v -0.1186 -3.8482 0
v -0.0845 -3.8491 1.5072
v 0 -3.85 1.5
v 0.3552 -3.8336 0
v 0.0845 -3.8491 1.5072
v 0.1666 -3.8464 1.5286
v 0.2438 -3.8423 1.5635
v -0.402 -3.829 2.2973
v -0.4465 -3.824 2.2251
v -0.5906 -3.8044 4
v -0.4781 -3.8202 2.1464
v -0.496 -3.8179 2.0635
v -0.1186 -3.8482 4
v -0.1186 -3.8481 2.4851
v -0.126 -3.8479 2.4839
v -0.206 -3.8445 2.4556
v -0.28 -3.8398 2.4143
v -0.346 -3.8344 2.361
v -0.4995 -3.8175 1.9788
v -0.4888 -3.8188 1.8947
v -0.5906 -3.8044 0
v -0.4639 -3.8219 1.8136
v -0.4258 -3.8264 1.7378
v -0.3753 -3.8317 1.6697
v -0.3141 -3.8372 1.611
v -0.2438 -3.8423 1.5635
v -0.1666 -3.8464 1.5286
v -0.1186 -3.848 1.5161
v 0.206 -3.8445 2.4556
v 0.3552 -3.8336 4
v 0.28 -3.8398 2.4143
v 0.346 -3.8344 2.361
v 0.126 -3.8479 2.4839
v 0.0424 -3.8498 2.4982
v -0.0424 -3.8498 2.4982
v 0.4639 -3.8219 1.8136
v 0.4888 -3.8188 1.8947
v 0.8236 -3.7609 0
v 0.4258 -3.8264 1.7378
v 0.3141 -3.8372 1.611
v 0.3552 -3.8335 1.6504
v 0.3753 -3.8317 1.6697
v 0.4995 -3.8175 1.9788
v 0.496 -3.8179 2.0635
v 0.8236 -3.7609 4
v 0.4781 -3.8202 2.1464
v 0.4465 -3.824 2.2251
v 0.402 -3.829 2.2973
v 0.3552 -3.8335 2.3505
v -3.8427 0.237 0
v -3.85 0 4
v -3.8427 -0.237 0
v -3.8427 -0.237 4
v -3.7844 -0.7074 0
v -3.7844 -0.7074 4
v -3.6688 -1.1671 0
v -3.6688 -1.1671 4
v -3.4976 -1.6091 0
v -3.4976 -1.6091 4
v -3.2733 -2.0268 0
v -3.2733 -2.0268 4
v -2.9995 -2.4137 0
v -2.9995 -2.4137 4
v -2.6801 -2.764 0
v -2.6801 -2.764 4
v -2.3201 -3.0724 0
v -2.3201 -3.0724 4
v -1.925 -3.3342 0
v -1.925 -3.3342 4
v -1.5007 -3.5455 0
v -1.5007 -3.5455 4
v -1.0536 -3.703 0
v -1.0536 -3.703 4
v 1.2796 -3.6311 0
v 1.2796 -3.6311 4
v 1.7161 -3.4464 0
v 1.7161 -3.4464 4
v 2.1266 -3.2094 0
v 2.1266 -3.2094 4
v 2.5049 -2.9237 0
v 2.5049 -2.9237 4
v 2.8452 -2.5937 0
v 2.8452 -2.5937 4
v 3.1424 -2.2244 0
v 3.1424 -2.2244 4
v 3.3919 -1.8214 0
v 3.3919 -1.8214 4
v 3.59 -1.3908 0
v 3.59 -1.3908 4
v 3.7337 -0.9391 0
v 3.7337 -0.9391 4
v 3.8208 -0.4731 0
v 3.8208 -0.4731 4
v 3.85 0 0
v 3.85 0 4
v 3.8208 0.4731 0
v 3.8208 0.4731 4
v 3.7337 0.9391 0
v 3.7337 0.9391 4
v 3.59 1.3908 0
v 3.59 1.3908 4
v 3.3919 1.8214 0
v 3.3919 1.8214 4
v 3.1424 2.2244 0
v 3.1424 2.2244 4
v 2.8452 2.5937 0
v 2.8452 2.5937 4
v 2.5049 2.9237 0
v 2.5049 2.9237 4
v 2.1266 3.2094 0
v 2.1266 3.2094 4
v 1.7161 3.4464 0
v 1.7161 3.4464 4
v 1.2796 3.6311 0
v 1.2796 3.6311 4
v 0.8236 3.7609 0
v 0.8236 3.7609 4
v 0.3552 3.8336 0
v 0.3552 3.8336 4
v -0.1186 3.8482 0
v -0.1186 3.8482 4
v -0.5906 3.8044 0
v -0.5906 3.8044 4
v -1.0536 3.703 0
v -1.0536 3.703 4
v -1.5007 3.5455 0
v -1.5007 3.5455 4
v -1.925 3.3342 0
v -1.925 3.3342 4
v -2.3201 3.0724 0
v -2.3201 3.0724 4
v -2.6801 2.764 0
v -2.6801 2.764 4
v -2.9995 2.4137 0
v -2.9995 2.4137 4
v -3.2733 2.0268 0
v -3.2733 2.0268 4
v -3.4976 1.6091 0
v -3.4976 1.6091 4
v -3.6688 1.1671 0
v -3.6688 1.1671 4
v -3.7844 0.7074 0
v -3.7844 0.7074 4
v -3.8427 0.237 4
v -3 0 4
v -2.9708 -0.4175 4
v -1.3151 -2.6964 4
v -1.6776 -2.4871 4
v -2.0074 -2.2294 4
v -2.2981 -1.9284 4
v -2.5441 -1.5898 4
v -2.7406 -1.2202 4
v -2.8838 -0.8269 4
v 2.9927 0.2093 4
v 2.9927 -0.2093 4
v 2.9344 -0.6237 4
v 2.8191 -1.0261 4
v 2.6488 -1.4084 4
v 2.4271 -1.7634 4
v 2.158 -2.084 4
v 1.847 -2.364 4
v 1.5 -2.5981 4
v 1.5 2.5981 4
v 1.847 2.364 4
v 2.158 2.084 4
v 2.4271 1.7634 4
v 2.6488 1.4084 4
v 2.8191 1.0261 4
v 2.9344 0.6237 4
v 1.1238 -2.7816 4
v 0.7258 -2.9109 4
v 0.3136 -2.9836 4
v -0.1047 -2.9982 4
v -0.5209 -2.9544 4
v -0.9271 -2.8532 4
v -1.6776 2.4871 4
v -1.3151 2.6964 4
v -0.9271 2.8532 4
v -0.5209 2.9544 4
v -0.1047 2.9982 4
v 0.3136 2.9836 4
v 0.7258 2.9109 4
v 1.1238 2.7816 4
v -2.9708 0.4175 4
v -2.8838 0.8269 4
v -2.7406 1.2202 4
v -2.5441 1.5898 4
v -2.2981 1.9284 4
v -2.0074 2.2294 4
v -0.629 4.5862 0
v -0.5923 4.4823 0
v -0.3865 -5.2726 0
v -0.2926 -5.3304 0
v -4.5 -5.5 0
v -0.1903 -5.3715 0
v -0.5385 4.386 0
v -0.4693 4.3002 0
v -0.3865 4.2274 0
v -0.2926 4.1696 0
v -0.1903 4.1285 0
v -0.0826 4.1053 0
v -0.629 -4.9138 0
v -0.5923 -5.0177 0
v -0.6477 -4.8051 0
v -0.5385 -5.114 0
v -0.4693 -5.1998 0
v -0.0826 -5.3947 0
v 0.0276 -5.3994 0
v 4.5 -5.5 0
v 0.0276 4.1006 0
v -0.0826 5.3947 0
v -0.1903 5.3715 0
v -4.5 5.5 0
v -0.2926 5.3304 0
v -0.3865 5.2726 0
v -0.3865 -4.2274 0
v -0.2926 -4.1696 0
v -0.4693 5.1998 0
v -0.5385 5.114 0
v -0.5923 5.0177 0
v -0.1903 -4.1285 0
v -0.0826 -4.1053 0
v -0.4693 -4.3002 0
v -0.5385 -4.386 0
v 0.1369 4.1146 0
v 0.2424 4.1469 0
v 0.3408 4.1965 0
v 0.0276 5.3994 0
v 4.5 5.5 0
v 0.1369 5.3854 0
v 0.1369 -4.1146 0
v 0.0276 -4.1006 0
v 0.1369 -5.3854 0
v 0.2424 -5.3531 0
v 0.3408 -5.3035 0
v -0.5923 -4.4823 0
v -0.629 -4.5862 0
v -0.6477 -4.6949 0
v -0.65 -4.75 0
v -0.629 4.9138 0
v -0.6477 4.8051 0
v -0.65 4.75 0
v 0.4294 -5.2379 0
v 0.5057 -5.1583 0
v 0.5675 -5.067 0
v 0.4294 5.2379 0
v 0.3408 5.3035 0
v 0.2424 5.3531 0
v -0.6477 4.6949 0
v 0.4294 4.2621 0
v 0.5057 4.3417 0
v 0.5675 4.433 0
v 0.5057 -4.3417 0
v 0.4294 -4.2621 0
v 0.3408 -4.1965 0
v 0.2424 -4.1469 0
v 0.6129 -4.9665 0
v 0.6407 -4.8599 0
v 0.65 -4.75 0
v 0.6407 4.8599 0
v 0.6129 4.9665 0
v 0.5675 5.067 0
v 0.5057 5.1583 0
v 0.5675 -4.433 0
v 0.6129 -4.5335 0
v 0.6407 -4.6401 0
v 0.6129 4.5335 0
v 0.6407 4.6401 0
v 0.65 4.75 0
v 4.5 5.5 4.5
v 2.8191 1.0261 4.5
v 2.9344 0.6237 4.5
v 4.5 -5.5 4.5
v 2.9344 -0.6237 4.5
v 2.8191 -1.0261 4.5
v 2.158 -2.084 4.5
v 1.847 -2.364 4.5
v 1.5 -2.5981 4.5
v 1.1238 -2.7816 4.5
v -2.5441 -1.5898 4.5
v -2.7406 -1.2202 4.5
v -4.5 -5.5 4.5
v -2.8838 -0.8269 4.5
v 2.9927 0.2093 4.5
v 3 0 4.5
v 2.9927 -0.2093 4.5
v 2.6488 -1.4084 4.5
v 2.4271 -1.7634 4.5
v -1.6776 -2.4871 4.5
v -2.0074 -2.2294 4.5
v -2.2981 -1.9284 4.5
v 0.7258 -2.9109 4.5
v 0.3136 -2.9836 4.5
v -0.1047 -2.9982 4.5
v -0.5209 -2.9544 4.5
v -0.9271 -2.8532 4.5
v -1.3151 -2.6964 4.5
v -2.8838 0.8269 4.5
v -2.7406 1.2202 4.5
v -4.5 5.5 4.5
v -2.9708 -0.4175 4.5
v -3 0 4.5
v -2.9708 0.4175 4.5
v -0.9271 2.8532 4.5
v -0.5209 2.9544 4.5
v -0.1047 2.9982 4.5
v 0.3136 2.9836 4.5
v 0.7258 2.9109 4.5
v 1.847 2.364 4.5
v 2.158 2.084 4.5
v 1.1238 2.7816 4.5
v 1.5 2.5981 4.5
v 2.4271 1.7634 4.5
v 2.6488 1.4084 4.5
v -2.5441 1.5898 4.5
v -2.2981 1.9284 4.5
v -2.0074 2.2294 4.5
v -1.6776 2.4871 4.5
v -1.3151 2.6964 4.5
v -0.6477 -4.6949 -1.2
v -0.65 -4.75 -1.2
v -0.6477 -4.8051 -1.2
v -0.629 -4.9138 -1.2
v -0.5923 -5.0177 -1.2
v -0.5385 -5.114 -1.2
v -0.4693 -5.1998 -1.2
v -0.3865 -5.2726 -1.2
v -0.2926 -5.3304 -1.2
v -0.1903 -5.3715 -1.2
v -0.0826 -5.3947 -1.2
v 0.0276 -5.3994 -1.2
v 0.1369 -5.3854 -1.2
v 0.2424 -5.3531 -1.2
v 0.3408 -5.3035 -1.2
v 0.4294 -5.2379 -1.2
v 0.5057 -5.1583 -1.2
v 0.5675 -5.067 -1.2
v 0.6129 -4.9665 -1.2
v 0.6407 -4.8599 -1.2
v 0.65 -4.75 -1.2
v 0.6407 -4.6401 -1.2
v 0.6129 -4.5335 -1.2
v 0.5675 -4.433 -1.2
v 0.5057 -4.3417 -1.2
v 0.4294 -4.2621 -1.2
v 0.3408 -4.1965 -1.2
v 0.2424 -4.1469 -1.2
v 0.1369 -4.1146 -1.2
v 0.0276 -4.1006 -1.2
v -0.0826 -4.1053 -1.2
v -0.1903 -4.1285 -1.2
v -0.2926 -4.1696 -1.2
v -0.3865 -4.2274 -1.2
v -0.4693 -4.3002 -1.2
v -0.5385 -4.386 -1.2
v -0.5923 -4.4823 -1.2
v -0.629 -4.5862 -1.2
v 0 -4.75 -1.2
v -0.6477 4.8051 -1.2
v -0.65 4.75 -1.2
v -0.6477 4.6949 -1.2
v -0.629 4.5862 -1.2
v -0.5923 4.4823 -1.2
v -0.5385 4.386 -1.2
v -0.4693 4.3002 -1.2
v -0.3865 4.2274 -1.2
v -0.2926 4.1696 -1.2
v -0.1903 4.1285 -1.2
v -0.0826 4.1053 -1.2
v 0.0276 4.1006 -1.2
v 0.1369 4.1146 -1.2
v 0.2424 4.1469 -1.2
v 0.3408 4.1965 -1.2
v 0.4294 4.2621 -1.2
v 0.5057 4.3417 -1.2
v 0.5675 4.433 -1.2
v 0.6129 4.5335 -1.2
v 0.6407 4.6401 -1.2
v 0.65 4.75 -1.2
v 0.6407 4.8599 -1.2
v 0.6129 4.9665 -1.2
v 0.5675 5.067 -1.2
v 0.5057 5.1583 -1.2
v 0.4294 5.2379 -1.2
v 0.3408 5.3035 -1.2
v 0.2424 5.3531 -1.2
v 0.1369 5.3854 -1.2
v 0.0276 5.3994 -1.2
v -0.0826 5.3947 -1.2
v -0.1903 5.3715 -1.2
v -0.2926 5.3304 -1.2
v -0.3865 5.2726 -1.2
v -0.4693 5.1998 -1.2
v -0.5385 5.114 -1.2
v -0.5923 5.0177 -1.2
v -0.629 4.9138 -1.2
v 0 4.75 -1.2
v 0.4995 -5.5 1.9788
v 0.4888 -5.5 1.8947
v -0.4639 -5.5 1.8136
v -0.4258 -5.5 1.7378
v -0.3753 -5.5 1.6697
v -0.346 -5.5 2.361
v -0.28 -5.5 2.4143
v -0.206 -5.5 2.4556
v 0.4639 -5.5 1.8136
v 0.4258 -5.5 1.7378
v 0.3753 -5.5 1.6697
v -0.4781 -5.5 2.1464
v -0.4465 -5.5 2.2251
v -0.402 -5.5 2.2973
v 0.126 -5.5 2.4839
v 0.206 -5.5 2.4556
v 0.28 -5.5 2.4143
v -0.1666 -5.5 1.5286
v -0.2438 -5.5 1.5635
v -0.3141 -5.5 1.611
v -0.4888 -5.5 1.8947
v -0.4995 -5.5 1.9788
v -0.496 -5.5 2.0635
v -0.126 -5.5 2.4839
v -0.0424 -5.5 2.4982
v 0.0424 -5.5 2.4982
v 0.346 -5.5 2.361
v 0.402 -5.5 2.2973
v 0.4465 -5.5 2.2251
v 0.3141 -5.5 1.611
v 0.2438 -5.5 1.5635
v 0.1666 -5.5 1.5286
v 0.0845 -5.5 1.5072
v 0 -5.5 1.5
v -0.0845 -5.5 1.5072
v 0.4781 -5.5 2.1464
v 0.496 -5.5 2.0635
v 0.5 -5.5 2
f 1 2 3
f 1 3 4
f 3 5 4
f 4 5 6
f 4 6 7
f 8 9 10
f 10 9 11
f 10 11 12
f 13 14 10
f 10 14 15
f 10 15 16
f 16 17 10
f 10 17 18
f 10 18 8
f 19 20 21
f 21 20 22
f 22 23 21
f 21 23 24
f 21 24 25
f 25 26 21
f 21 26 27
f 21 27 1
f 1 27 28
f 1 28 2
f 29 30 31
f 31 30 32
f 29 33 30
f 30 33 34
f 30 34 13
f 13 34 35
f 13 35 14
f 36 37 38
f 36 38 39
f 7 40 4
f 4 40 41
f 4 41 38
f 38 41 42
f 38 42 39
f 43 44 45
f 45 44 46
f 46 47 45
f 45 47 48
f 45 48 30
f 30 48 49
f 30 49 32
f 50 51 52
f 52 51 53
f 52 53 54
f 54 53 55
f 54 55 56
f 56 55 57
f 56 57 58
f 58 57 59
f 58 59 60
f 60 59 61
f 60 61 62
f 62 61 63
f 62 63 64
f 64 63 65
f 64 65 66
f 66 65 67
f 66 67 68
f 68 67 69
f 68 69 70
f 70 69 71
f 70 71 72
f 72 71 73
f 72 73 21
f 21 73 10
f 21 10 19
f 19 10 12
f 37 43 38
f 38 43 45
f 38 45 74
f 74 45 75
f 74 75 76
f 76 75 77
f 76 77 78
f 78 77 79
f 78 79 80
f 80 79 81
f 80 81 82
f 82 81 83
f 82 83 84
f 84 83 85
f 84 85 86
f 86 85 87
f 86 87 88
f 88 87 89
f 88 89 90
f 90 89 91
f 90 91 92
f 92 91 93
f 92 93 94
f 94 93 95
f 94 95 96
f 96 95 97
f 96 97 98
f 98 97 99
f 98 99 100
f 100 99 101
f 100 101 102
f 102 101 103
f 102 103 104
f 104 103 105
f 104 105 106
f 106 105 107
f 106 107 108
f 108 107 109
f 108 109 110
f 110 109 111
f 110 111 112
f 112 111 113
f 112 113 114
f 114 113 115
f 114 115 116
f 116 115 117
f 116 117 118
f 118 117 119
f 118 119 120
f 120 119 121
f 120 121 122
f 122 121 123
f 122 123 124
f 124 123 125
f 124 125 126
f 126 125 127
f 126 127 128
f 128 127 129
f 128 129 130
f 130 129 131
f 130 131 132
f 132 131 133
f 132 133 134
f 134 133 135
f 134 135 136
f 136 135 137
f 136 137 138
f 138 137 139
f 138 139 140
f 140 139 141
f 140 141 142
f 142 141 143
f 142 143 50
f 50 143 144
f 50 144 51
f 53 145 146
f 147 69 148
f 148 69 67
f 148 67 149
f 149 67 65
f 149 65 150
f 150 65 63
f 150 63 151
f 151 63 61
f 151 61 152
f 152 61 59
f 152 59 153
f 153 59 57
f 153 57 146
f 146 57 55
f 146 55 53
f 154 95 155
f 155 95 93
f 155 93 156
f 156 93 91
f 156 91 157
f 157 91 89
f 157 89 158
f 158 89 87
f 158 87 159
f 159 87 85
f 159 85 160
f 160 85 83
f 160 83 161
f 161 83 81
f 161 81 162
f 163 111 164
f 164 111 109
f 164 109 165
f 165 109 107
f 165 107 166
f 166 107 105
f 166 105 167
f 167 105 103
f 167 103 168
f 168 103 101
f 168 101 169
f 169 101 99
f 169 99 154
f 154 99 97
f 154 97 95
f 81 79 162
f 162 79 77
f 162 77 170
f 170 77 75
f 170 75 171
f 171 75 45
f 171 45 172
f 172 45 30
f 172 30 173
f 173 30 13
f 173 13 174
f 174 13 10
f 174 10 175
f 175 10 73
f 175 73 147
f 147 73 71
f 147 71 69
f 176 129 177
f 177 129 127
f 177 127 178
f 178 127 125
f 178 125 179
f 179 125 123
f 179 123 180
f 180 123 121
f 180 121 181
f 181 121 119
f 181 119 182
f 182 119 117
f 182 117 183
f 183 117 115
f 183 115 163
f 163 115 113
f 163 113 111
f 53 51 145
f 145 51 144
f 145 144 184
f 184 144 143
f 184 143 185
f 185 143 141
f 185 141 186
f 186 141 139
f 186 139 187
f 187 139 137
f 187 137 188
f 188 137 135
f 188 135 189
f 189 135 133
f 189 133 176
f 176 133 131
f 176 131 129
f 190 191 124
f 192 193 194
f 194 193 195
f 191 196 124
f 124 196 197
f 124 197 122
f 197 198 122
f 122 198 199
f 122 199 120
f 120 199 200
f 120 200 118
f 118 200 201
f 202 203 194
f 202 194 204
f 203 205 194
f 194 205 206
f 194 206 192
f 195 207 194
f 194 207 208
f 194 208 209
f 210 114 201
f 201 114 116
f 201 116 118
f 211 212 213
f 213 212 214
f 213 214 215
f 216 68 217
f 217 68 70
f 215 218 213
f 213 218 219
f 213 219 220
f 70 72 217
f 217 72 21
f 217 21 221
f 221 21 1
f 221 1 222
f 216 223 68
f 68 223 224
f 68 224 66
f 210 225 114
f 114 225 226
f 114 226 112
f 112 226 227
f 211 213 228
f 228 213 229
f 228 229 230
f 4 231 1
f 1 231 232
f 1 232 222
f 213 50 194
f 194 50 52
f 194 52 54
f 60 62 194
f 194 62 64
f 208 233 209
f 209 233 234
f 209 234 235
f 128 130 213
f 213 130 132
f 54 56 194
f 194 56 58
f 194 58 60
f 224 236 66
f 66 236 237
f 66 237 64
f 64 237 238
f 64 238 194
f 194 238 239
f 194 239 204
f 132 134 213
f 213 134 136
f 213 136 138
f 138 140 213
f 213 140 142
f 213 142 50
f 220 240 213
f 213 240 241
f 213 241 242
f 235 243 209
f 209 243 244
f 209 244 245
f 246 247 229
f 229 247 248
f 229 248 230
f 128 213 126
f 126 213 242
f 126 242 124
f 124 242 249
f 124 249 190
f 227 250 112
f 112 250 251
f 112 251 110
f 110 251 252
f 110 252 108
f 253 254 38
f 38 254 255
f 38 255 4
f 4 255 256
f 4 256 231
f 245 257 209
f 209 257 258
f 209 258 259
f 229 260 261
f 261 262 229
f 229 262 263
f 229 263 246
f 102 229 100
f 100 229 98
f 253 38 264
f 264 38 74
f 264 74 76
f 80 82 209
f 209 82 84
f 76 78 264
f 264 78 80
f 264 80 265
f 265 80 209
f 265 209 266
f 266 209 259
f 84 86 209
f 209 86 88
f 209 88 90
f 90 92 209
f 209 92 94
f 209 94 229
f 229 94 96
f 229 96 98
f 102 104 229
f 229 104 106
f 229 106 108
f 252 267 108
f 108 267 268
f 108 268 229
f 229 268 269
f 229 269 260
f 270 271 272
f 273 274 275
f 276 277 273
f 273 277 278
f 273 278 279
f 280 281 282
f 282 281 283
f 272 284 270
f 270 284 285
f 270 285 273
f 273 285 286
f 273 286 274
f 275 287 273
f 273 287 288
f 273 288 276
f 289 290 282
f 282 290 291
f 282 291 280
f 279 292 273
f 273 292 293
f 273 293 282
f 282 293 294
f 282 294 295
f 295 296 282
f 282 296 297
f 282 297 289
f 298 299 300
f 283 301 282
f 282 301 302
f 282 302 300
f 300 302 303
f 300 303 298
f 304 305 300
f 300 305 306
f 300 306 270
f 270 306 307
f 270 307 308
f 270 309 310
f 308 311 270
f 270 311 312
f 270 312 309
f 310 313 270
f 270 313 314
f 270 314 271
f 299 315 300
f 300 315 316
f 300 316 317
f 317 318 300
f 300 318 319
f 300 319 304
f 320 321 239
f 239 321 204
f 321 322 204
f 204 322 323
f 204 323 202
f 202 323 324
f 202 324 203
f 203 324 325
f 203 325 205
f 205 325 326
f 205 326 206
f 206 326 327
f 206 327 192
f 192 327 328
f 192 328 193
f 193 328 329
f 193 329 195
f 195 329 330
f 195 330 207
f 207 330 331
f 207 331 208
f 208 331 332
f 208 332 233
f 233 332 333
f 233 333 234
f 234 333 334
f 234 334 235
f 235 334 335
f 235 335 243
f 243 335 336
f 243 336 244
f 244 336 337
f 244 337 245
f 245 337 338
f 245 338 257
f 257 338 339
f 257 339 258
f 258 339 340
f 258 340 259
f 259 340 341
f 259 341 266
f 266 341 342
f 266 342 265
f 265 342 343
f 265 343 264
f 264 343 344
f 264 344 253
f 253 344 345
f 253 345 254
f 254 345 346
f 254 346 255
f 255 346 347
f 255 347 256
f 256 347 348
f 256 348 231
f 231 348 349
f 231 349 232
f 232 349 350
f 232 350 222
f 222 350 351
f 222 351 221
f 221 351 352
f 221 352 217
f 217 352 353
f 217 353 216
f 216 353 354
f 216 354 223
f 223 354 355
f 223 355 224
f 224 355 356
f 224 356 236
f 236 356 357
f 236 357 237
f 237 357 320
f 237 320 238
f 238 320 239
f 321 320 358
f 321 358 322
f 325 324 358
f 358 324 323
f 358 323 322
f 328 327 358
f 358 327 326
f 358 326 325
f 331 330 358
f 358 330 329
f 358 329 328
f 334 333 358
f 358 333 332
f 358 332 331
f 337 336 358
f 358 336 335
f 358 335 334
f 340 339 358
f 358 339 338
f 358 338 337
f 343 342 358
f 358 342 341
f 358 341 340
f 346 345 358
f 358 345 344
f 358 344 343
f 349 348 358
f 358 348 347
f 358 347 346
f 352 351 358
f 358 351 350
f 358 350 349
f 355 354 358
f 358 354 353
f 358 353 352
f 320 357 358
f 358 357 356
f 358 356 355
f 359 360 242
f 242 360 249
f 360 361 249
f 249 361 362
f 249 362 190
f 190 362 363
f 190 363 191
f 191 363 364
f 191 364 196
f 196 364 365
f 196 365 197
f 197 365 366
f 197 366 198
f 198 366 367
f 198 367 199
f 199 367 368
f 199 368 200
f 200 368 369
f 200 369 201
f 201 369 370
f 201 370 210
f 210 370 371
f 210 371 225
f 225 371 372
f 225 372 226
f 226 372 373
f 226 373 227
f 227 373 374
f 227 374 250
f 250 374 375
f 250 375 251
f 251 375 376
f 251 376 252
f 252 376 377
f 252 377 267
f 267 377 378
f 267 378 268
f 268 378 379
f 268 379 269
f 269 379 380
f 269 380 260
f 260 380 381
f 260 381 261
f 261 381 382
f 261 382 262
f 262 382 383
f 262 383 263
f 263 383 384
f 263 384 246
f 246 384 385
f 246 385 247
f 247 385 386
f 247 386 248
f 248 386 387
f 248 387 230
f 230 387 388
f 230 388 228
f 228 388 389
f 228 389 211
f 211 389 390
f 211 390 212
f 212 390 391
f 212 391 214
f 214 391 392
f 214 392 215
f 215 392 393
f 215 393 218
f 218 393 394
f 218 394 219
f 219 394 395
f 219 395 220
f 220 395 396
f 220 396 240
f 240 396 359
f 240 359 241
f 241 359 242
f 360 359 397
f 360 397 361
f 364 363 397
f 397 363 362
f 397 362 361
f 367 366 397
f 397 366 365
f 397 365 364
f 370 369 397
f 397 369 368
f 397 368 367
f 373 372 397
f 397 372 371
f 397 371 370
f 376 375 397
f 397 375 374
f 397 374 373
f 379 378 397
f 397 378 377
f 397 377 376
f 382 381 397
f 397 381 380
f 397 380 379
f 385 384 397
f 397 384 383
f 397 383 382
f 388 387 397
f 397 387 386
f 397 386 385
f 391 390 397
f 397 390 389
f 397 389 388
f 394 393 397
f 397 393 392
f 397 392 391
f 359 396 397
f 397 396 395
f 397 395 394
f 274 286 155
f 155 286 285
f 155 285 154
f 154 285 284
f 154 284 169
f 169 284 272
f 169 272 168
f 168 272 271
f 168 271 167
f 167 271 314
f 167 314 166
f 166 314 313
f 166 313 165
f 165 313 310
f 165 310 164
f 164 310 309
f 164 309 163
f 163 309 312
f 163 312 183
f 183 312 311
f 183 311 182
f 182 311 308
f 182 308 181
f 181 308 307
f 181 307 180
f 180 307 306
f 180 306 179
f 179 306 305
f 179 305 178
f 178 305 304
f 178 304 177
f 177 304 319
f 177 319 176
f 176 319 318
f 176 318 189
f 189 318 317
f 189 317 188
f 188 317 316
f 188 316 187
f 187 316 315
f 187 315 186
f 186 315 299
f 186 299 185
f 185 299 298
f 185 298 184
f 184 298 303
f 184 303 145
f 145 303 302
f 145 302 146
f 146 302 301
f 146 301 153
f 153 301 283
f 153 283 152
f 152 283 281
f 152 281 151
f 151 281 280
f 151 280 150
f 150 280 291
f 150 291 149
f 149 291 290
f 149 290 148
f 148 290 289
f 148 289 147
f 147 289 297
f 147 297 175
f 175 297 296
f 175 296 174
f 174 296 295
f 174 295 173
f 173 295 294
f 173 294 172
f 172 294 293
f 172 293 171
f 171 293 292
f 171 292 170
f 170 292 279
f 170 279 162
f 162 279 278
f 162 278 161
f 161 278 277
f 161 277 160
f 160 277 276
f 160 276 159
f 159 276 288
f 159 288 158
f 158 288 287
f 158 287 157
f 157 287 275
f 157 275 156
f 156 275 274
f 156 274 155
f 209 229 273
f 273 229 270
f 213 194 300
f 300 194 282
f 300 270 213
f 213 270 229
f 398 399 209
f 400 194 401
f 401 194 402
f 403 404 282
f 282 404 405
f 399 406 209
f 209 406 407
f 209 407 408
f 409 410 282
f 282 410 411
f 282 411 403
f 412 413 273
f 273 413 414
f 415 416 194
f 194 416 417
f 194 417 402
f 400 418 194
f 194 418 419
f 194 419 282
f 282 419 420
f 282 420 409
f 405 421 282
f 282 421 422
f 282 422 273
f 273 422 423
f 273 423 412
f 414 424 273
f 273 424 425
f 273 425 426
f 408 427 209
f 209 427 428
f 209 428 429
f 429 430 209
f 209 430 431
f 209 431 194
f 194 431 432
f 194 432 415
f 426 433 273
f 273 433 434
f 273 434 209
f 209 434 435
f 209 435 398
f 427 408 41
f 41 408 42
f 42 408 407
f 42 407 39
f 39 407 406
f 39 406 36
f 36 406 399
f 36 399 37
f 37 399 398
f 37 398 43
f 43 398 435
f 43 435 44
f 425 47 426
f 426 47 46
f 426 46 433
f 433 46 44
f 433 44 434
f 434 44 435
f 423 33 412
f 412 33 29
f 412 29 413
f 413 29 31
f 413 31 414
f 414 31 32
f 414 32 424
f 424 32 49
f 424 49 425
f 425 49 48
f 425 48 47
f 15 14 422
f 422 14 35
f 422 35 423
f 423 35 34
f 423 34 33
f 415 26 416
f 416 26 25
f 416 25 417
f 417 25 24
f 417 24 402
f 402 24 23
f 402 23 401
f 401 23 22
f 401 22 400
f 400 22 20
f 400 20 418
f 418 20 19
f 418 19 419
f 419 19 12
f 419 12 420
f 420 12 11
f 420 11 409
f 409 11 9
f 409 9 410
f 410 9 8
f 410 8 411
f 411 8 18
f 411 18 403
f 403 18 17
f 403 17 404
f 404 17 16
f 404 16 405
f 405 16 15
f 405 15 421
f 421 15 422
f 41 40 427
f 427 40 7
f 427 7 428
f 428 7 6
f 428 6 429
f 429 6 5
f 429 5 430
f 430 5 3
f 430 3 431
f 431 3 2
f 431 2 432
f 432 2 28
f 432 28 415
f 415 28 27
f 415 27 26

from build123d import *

# Parameters (mm, degrees)
ESBO_O6_R                  = 5.25
ESBO_O6_R_2                = 4.1
RESSALTO_EXTRUS_O3_DEPTH   = 4
ESBO_O7_R                  = 5.25
RESSALTO_EXTRUS_O4_DEPTH   = 0.5
ESBO_O9_R                  = 0.65
RESSALTO_EXTRUS_O5_DEPTH   = 1.2
ESBO_O12_R                 = 3
CORTE_EXTRUS_O5_DEPTH      = 10
RESSALTO_EXTRUS_O6_START   = 4
ESBO_O13_R                 = 4.1
ESBO_O13_R_2               = 3.85
RESSALTO_EXTRUS_O6_DEPTH   = 4
ESBO_O16_W                 = 2.665336127
ESBO_O16_H                 = 7.90902753
ESBO_O16_W_2               = 2.097265449
ESBO_O16_H_2               = 7.395164159
CORTE_EXTRUS_O7_DEPTH      = 10
ESBO_O15_W                 = 9
ESBO_O15_H                 = 11
ESBO_O15_R                 = 3.85
RESSALTO_EXTRUS_O7_DEPTH   = 4.5
CORTE_EXTRUS_O6_REACH      = 18.756
CORTE_EXTRUS_O6_END_RADIUS = 3.85
ESBO_O14_R                 = 0.5


with BuildPart() as part:
    # Esboço6 → Ressalto-extrusão3 (new body)
    with BuildSketch(Plane.XY):
        Circle(ESBO_O6_R)
        Circle(ESBO_O6_R_2, mode=Mode.SUBTRACT)
    extrude(amount=RESSALTO_EXTRUS_O3_DEPTH)

    # Esboço7 → Ressalto-extrusão4 (add)
    with BuildSketch(Plane.XY.offset(4)):
        Circle(ESBO_O7_R)
    extrude(amount=RESSALTO_EXTRUS_O4_DEPTH)

    # Esboço9 → Ressalto-extrusão5 (add)
    with BuildSketch(Plane(origin=(0, 0, 0), x_dir=(-1, 0, 0), z_dir=(0, 0, -1))):
        with Locations(Location((0, 4.75, 0), (0, 0, 132.158106499))):
            Circle(ESBO_O9_R)
        with Locations(Location((0, -4.75, 0), (0, 0, 227.841893501))):
            Circle(ESBO_O9_R)
    extrude(amount=RESSALTO_EXTRUS_O5_DEPTH)

    # Esboço12 → Corte-extrusão5 (cut)
    with BuildSketch(Plane(origin=(0, 0, 4), x_dir=(-1, 0, 0), z_dir=(0, 0, -1))):
        Circle(ESBO_O12_R)
    extrude(amount=-CORTE_EXTRUS_O5_DEPTH, mode=Mode.SUBTRACT)

    # Esboço13 → Ressalto-extrusão6 (add)
    with BuildSketch(Plane(origin=(0, 0, 4), x_dir=(-1, 0, 0), z_dir=(0, 0, -1)).offset(RESSALTO_EXTRUS_O6_START)):
        Circle(ESBO_O13_R)
        with Locations(Location((0, 0, 0), (0, 0, 180))):
            Circle(ESBO_O13_R_2, mode=Mode.SUBTRACT)
    extrude(amount=-RESSALTO_EXTRUS_O6_DEPTH)

    # Esboço16 → Corte-extrusão7 (cut)
    with BuildSketch(Plane(origin=(0, 0, 0), x_dir=(-1, 0, 0), z_dir=(0, 0, -1))):
        with Locations((5.832668063, -0.340062901)):
            Rectangle(ESBO_O16_W, ESBO_O16_H)
        with Locations((-5.548632725, -0.440601387)):
            Rectangle(ESBO_O16_W_2, ESBO_O16_H_2)
    extrude(amount=-CORTE_EXTRUS_O7_DEPTH, mode=Mode.SUBTRACT)

    # Esboço15 → Ressalto-extrusão7 (add)
    with BuildSketch(Plane(origin=(0, 0, 0), x_dir=(-1, 0, 0), z_dir=(0, 0, -1))):
        Rectangle(ESBO_O15_W, ESBO_O15_H)
        with Locations(Location((0, 0, 0), (0, 0, 180))):
            Circle(ESBO_O15_R, mode=Mode.SUBTRACT)
    extrude(amount=-RESSALTO_EXTRUS_O7_DEPTH)

    # Corte-extrusão6: up to this cylinder (the profile starts outside it)
    corte_extrus_o6_end = Plane(origin=(0, 0, 2), z_dir=(0, 0, 1)) * Cylinder(CORTE_EXTRUS_O6_END_RADIUS, 46.212, mode=Mode.PRIVATE)
    # Esboço14 → Corte-extrusão6 (cut, up to the surface)
    with BuildSketch(Plane(origin=(0, -10, 0), x_dir=(1, 0, 0), z_dir=(0, 1, 0)), mode=Mode.PRIVATE) as corte_extrus_o6_sk1:
        with Locations(Location((0, -2, 0), (0, 0, 90))):
            Circle(ESBO_O14_R)
    corte_extrus_o6_tool1 = extrude(corte_extrus_o6_sk1.sketch, amount=CORTE_EXTRUS_O6_REACH, mode=Mode.PRIVATE) - corte_extrus_o6_end
    add(corte_extrus_o6_tool1.solids().sort_by_distance((0, -10, 2))[0], mode=Mode.SUBTRACT)


solid = part.part
